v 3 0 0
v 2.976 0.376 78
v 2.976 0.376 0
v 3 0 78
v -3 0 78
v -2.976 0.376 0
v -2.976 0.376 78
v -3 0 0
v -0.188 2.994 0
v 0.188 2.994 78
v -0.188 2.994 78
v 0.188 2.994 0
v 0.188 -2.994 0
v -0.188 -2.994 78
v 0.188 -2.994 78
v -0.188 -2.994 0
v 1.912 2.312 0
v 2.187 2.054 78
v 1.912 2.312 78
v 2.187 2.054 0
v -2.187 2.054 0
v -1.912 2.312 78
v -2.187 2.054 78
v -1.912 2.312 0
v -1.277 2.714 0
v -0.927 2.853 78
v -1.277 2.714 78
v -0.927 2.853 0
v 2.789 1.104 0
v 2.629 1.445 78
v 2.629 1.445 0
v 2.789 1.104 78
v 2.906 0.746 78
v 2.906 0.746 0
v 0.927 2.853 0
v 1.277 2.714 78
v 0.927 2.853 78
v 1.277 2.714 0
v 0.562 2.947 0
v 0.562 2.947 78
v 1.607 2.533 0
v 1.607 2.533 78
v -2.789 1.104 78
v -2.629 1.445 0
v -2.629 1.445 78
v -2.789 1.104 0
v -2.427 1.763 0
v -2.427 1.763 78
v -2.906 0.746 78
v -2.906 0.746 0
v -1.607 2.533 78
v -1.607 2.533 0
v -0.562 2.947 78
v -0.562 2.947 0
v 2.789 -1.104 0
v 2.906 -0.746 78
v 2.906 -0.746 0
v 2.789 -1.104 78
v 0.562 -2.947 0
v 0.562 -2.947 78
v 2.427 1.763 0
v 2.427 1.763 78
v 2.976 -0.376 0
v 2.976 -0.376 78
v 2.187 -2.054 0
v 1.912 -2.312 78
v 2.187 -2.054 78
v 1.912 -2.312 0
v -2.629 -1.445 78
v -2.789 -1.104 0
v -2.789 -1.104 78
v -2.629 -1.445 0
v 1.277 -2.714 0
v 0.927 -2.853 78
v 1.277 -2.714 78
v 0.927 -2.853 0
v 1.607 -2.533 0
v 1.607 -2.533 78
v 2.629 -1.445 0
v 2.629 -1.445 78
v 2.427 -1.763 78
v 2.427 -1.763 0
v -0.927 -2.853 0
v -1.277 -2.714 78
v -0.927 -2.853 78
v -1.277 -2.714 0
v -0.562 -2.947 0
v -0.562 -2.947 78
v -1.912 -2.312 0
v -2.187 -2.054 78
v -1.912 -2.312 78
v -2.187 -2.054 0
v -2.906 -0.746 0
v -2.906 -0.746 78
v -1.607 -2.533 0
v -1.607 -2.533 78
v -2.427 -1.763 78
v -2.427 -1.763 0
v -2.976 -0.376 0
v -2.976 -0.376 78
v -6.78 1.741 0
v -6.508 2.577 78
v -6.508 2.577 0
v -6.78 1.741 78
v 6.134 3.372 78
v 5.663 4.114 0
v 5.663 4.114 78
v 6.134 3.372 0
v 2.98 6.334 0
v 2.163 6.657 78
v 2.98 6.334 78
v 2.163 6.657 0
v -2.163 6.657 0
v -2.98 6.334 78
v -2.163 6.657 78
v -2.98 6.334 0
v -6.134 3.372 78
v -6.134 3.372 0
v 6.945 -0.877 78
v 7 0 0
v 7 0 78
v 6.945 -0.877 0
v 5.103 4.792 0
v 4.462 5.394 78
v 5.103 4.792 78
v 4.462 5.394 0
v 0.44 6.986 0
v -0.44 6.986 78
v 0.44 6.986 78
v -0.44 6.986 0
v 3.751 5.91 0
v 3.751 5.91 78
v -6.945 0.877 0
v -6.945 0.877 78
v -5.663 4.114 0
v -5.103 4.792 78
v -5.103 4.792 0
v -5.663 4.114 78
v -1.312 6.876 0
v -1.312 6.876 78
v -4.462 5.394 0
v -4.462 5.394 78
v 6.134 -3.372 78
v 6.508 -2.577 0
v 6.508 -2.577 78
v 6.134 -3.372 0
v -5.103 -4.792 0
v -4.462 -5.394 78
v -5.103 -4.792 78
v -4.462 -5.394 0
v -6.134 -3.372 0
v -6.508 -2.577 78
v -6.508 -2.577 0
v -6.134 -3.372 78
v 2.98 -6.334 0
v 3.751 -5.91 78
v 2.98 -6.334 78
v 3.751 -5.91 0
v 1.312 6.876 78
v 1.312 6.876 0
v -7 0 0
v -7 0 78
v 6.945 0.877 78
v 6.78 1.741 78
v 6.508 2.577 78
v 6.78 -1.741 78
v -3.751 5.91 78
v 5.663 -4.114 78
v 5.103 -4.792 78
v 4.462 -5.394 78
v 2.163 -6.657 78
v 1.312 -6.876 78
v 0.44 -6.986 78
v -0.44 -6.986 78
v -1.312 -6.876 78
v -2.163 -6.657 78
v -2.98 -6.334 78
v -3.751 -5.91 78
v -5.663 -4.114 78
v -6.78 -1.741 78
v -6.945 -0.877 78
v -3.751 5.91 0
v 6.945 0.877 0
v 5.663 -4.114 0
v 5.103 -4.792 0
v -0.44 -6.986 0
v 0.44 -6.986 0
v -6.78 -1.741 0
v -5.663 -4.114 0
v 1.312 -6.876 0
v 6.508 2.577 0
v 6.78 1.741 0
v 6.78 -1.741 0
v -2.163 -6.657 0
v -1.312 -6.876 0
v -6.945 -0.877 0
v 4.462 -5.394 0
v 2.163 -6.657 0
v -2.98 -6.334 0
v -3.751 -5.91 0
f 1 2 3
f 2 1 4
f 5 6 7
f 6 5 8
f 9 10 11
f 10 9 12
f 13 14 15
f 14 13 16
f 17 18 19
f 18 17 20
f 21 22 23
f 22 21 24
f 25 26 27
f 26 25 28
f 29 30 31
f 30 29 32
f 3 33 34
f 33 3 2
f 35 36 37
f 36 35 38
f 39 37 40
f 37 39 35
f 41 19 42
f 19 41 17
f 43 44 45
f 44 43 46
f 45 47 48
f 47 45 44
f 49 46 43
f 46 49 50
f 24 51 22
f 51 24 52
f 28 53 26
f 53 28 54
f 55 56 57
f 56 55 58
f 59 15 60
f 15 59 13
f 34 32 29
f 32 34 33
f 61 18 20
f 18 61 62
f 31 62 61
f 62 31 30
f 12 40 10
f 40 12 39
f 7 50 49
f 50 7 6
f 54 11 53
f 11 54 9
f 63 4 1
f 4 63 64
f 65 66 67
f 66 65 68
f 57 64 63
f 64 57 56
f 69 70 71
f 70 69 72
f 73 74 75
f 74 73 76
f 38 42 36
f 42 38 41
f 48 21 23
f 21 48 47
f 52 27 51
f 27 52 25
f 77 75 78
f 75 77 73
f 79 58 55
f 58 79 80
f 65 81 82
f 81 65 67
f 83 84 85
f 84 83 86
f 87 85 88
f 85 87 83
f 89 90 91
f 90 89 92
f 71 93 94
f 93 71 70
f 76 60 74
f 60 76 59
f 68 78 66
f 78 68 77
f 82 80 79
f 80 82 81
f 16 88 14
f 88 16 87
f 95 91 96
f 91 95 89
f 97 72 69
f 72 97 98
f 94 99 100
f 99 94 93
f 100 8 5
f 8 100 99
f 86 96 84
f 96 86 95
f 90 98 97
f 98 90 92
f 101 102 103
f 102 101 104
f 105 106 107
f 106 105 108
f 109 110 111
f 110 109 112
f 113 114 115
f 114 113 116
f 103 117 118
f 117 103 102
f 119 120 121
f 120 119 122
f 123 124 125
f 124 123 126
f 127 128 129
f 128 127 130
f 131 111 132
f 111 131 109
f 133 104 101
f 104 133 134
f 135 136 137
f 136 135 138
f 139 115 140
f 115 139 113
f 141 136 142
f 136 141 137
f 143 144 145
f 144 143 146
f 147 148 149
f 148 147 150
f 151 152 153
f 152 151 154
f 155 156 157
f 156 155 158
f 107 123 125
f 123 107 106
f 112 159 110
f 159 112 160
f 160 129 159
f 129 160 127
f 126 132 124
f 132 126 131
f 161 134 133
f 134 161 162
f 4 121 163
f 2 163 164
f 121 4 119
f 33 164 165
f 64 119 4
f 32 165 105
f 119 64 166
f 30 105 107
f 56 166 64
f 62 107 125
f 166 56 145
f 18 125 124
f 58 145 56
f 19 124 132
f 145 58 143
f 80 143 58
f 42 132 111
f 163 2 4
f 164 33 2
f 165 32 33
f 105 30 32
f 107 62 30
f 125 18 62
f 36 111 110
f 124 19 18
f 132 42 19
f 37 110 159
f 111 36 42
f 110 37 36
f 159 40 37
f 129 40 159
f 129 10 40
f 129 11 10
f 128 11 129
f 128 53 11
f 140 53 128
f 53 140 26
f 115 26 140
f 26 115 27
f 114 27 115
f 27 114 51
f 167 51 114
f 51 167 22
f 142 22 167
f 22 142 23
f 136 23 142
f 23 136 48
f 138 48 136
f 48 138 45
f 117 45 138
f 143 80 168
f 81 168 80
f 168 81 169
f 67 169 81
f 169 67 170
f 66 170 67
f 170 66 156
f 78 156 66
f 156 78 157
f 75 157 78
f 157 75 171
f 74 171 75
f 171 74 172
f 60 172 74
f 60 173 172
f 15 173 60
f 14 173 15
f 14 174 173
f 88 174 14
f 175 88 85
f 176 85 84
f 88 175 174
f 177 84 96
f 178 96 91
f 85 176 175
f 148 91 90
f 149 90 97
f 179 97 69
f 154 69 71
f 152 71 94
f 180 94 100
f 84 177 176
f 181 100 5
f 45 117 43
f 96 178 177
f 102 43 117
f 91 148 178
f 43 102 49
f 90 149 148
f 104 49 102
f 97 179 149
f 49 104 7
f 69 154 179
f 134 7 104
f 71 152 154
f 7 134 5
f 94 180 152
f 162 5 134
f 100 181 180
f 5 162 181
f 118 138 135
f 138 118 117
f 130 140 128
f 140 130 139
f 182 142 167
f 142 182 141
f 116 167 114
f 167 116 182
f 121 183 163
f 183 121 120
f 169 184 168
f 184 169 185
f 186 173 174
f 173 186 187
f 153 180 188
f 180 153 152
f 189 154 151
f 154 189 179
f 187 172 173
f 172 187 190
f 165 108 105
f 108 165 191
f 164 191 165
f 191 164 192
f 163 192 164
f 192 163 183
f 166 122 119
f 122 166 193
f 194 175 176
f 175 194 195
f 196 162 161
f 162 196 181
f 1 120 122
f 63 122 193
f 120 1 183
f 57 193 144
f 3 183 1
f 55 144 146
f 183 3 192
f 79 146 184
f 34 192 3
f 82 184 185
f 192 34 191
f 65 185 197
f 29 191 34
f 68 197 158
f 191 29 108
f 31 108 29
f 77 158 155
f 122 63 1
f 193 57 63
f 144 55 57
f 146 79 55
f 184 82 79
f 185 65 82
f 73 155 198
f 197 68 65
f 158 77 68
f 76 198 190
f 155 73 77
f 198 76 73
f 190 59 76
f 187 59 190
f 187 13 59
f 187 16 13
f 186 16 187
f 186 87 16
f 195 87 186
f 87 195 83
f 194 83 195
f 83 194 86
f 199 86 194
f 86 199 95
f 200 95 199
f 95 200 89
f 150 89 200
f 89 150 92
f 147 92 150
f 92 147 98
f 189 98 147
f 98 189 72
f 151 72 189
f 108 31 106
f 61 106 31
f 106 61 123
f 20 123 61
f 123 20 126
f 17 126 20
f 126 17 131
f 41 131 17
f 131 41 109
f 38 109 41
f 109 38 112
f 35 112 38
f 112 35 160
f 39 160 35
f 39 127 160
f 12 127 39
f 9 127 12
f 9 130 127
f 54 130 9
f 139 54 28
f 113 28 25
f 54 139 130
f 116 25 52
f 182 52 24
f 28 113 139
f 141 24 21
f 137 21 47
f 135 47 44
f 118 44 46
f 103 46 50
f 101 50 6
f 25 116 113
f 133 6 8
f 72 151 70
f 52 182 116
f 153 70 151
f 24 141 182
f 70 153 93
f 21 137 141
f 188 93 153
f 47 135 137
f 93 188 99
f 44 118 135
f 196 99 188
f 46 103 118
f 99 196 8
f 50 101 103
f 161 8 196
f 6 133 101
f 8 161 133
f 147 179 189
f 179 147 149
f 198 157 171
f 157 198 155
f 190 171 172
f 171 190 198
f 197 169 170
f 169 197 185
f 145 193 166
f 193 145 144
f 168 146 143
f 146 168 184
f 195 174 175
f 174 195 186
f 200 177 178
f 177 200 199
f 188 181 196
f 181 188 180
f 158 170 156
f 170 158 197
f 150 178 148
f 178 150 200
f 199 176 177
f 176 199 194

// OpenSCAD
$fn = 50;


difference() {
	union() {
		*color(alpha = 1.0000000000, c = "gray") {
			translate(v = [0, 7, 0]) {
				linear_extrude(height = 1) {
					text(font = "Arial:style=Bold", halign = "center", size = 4.5000000000, text = "COMMENT plate main", valign = "center");
				}
			}
		}
		cylinder(h = 78, r = 7.0000000000);
	}
	union() {
		*color(alpha = 1.0000000000, c = "gray") {
			translate(v = [0, 7, 0]) {
				linear_extrude(height = 1) {
					text(font = "Arial:style=Bold", halign = "center", size = 4.5000000000, text = "COMMENT holes main", valign = "center");
				}
			}
		}
		translate(v = [0, 0, -100]) {
			cylinder(h = 200, r = 3.0000000000);
		}
		translate(v = [0, 0, -100]) {
			cylinder(h = 200, r = 1.5000000000);
		}
	}
}
